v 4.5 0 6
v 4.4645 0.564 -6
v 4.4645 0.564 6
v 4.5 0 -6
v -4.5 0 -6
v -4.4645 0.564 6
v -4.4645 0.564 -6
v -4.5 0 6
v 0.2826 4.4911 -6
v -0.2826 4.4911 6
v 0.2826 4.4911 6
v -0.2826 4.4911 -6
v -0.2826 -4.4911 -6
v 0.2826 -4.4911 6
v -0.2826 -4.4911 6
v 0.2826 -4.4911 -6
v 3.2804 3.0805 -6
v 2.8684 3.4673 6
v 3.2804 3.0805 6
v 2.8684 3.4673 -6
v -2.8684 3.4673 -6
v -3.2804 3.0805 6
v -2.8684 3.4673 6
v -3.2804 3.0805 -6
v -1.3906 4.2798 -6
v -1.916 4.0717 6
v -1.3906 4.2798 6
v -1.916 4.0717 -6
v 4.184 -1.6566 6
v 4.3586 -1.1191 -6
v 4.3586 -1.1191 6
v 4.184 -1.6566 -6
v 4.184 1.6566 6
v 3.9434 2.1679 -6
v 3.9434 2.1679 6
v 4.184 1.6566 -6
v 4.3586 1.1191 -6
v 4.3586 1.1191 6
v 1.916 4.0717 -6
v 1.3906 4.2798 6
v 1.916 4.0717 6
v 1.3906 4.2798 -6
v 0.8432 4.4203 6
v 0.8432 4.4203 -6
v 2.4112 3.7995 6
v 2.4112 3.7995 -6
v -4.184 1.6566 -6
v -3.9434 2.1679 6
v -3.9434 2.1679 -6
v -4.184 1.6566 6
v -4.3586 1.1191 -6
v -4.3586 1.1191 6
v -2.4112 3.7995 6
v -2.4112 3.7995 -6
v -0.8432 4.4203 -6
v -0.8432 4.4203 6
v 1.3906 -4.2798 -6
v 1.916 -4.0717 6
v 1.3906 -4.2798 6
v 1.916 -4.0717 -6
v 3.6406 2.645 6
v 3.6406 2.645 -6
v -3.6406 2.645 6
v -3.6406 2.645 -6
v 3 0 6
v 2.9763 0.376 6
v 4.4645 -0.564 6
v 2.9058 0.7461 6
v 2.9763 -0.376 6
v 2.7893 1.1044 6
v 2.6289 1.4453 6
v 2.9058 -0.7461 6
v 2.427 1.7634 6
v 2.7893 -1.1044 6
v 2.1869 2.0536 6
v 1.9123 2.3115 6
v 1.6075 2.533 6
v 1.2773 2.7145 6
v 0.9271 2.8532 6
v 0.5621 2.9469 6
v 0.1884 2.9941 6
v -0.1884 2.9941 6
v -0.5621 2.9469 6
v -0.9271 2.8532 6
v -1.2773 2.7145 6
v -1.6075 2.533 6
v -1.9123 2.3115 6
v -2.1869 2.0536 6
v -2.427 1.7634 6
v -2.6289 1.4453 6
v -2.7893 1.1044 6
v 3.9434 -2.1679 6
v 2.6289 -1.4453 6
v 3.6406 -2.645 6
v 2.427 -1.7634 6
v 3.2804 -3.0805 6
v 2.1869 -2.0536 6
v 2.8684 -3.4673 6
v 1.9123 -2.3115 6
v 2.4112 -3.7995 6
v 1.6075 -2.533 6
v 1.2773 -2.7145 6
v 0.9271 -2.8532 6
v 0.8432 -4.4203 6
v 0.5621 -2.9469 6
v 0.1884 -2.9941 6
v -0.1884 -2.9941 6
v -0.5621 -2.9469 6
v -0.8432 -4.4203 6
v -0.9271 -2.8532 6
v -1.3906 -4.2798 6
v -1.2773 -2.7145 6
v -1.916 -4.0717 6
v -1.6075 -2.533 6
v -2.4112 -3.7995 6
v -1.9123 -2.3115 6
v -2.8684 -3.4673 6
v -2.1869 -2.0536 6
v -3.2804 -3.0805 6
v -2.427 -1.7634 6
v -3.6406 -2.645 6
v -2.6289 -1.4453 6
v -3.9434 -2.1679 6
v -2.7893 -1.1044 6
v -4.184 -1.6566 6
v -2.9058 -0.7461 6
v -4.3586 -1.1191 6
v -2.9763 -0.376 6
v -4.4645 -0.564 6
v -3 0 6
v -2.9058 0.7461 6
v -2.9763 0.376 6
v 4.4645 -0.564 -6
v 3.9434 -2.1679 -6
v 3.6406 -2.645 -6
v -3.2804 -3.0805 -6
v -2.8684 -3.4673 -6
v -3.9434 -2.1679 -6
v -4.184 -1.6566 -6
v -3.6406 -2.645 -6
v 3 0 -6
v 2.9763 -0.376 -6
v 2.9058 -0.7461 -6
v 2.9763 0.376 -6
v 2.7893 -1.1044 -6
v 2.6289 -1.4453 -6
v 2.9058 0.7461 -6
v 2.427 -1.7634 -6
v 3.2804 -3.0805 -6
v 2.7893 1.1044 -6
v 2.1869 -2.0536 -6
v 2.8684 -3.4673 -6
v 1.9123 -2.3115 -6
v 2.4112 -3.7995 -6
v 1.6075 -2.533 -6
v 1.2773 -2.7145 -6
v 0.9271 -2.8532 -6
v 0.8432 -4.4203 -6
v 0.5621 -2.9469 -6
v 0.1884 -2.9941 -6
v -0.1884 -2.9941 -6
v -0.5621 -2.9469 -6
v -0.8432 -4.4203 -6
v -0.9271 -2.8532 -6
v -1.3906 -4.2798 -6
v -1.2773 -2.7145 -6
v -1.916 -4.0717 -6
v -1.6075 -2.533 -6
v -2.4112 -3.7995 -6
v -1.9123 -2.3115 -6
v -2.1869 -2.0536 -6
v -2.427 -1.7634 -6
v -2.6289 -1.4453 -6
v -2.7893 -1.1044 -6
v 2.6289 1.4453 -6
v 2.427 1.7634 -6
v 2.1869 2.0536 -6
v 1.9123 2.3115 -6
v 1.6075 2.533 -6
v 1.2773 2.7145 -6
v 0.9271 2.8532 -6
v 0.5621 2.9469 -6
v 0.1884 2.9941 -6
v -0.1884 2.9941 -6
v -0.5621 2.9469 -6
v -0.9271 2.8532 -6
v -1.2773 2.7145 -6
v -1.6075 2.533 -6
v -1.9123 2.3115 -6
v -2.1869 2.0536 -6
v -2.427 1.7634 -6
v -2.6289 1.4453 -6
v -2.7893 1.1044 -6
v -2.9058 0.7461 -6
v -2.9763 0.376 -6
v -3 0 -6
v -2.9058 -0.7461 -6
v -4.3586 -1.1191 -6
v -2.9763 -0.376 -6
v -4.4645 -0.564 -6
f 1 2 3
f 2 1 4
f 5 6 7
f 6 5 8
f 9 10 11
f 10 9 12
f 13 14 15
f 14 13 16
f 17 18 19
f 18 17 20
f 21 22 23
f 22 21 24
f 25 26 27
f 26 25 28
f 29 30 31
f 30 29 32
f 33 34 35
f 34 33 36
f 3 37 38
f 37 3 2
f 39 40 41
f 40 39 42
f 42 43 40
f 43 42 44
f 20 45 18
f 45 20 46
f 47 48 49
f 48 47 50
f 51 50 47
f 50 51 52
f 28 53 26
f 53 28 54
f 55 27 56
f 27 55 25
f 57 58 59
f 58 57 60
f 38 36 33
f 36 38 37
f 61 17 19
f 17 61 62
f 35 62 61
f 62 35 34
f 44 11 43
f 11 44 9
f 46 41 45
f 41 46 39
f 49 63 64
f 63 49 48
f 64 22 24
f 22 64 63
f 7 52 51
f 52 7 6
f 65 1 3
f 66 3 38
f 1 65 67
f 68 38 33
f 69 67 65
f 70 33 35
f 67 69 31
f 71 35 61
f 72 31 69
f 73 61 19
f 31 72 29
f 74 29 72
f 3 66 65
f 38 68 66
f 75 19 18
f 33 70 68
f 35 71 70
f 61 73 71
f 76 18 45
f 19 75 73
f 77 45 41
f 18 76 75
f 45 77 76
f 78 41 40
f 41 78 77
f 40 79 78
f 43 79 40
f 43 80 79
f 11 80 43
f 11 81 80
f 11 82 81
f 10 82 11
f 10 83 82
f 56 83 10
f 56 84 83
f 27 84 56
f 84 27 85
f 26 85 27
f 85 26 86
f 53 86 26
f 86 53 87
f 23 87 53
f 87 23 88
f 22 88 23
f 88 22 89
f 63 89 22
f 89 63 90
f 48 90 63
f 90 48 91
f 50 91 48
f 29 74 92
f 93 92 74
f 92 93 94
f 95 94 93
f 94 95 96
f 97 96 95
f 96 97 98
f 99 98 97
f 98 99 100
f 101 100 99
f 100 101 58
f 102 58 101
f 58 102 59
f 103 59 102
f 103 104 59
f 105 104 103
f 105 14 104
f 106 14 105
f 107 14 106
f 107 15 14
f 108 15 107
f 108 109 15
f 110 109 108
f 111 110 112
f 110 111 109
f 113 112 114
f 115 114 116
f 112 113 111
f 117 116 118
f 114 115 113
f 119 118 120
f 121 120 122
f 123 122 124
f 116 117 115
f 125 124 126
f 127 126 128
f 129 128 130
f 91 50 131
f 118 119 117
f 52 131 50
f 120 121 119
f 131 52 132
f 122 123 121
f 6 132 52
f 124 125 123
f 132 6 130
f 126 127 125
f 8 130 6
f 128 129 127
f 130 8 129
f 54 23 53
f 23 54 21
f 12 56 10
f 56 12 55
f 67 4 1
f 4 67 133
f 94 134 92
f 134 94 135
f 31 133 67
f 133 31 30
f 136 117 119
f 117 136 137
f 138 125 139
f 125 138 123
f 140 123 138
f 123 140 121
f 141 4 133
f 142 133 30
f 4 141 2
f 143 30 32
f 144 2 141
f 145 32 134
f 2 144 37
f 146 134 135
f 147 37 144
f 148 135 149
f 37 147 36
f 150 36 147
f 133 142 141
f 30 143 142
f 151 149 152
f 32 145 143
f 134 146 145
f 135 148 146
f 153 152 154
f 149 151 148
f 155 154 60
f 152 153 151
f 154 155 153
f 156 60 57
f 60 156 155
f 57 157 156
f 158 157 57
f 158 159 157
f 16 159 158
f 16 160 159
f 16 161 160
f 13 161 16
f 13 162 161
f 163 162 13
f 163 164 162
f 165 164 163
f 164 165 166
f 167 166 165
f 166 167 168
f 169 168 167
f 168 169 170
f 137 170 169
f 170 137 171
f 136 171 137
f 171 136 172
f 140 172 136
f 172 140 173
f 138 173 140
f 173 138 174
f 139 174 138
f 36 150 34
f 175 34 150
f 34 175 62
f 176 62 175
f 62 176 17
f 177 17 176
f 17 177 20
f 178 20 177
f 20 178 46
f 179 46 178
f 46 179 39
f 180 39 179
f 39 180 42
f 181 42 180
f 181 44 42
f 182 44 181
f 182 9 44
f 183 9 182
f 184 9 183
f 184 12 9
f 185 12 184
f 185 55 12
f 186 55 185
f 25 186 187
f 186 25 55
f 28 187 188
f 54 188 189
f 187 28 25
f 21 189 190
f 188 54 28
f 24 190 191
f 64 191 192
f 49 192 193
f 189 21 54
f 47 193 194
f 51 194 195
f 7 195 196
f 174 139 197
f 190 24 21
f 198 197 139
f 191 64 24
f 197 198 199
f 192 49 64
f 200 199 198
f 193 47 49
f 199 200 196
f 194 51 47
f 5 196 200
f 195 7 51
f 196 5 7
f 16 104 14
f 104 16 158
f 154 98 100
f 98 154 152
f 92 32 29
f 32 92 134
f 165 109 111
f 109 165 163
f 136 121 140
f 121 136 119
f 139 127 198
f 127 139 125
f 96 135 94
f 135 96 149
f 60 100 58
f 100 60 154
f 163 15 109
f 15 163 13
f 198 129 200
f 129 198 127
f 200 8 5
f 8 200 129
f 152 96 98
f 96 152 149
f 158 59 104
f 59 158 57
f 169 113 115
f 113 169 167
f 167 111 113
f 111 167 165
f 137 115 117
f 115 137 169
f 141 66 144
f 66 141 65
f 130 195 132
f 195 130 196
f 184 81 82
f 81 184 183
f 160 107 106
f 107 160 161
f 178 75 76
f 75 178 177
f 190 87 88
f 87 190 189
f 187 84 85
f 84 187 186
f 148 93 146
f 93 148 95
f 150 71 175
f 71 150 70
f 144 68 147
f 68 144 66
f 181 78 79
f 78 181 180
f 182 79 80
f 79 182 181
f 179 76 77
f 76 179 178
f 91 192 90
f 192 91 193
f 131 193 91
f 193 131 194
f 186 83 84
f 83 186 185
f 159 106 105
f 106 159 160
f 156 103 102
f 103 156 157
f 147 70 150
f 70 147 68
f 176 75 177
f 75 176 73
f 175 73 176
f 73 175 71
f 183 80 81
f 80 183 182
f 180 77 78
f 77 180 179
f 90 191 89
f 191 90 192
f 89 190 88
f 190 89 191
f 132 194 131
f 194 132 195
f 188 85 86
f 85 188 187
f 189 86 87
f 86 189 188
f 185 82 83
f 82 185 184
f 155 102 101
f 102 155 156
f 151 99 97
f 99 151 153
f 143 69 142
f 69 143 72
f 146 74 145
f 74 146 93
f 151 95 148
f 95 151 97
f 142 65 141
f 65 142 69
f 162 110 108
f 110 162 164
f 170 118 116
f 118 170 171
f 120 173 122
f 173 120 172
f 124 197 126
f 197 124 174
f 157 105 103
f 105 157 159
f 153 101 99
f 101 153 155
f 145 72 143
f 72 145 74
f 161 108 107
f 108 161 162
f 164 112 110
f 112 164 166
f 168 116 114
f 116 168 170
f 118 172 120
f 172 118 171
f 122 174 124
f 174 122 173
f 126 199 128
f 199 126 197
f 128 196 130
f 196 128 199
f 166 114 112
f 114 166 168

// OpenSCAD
$fn = 50;


difference() {
	union() {
		translate(v = [0, 0, -6.0000000000]) {
			cylinder(h = 12, r = 4.5000000000);
		}
	}
	union() {
		translate(v = [0, 0, -100.0000000000]) {
			cylinder(h = 200, r = 3.0000000000);
		}
	}
}
